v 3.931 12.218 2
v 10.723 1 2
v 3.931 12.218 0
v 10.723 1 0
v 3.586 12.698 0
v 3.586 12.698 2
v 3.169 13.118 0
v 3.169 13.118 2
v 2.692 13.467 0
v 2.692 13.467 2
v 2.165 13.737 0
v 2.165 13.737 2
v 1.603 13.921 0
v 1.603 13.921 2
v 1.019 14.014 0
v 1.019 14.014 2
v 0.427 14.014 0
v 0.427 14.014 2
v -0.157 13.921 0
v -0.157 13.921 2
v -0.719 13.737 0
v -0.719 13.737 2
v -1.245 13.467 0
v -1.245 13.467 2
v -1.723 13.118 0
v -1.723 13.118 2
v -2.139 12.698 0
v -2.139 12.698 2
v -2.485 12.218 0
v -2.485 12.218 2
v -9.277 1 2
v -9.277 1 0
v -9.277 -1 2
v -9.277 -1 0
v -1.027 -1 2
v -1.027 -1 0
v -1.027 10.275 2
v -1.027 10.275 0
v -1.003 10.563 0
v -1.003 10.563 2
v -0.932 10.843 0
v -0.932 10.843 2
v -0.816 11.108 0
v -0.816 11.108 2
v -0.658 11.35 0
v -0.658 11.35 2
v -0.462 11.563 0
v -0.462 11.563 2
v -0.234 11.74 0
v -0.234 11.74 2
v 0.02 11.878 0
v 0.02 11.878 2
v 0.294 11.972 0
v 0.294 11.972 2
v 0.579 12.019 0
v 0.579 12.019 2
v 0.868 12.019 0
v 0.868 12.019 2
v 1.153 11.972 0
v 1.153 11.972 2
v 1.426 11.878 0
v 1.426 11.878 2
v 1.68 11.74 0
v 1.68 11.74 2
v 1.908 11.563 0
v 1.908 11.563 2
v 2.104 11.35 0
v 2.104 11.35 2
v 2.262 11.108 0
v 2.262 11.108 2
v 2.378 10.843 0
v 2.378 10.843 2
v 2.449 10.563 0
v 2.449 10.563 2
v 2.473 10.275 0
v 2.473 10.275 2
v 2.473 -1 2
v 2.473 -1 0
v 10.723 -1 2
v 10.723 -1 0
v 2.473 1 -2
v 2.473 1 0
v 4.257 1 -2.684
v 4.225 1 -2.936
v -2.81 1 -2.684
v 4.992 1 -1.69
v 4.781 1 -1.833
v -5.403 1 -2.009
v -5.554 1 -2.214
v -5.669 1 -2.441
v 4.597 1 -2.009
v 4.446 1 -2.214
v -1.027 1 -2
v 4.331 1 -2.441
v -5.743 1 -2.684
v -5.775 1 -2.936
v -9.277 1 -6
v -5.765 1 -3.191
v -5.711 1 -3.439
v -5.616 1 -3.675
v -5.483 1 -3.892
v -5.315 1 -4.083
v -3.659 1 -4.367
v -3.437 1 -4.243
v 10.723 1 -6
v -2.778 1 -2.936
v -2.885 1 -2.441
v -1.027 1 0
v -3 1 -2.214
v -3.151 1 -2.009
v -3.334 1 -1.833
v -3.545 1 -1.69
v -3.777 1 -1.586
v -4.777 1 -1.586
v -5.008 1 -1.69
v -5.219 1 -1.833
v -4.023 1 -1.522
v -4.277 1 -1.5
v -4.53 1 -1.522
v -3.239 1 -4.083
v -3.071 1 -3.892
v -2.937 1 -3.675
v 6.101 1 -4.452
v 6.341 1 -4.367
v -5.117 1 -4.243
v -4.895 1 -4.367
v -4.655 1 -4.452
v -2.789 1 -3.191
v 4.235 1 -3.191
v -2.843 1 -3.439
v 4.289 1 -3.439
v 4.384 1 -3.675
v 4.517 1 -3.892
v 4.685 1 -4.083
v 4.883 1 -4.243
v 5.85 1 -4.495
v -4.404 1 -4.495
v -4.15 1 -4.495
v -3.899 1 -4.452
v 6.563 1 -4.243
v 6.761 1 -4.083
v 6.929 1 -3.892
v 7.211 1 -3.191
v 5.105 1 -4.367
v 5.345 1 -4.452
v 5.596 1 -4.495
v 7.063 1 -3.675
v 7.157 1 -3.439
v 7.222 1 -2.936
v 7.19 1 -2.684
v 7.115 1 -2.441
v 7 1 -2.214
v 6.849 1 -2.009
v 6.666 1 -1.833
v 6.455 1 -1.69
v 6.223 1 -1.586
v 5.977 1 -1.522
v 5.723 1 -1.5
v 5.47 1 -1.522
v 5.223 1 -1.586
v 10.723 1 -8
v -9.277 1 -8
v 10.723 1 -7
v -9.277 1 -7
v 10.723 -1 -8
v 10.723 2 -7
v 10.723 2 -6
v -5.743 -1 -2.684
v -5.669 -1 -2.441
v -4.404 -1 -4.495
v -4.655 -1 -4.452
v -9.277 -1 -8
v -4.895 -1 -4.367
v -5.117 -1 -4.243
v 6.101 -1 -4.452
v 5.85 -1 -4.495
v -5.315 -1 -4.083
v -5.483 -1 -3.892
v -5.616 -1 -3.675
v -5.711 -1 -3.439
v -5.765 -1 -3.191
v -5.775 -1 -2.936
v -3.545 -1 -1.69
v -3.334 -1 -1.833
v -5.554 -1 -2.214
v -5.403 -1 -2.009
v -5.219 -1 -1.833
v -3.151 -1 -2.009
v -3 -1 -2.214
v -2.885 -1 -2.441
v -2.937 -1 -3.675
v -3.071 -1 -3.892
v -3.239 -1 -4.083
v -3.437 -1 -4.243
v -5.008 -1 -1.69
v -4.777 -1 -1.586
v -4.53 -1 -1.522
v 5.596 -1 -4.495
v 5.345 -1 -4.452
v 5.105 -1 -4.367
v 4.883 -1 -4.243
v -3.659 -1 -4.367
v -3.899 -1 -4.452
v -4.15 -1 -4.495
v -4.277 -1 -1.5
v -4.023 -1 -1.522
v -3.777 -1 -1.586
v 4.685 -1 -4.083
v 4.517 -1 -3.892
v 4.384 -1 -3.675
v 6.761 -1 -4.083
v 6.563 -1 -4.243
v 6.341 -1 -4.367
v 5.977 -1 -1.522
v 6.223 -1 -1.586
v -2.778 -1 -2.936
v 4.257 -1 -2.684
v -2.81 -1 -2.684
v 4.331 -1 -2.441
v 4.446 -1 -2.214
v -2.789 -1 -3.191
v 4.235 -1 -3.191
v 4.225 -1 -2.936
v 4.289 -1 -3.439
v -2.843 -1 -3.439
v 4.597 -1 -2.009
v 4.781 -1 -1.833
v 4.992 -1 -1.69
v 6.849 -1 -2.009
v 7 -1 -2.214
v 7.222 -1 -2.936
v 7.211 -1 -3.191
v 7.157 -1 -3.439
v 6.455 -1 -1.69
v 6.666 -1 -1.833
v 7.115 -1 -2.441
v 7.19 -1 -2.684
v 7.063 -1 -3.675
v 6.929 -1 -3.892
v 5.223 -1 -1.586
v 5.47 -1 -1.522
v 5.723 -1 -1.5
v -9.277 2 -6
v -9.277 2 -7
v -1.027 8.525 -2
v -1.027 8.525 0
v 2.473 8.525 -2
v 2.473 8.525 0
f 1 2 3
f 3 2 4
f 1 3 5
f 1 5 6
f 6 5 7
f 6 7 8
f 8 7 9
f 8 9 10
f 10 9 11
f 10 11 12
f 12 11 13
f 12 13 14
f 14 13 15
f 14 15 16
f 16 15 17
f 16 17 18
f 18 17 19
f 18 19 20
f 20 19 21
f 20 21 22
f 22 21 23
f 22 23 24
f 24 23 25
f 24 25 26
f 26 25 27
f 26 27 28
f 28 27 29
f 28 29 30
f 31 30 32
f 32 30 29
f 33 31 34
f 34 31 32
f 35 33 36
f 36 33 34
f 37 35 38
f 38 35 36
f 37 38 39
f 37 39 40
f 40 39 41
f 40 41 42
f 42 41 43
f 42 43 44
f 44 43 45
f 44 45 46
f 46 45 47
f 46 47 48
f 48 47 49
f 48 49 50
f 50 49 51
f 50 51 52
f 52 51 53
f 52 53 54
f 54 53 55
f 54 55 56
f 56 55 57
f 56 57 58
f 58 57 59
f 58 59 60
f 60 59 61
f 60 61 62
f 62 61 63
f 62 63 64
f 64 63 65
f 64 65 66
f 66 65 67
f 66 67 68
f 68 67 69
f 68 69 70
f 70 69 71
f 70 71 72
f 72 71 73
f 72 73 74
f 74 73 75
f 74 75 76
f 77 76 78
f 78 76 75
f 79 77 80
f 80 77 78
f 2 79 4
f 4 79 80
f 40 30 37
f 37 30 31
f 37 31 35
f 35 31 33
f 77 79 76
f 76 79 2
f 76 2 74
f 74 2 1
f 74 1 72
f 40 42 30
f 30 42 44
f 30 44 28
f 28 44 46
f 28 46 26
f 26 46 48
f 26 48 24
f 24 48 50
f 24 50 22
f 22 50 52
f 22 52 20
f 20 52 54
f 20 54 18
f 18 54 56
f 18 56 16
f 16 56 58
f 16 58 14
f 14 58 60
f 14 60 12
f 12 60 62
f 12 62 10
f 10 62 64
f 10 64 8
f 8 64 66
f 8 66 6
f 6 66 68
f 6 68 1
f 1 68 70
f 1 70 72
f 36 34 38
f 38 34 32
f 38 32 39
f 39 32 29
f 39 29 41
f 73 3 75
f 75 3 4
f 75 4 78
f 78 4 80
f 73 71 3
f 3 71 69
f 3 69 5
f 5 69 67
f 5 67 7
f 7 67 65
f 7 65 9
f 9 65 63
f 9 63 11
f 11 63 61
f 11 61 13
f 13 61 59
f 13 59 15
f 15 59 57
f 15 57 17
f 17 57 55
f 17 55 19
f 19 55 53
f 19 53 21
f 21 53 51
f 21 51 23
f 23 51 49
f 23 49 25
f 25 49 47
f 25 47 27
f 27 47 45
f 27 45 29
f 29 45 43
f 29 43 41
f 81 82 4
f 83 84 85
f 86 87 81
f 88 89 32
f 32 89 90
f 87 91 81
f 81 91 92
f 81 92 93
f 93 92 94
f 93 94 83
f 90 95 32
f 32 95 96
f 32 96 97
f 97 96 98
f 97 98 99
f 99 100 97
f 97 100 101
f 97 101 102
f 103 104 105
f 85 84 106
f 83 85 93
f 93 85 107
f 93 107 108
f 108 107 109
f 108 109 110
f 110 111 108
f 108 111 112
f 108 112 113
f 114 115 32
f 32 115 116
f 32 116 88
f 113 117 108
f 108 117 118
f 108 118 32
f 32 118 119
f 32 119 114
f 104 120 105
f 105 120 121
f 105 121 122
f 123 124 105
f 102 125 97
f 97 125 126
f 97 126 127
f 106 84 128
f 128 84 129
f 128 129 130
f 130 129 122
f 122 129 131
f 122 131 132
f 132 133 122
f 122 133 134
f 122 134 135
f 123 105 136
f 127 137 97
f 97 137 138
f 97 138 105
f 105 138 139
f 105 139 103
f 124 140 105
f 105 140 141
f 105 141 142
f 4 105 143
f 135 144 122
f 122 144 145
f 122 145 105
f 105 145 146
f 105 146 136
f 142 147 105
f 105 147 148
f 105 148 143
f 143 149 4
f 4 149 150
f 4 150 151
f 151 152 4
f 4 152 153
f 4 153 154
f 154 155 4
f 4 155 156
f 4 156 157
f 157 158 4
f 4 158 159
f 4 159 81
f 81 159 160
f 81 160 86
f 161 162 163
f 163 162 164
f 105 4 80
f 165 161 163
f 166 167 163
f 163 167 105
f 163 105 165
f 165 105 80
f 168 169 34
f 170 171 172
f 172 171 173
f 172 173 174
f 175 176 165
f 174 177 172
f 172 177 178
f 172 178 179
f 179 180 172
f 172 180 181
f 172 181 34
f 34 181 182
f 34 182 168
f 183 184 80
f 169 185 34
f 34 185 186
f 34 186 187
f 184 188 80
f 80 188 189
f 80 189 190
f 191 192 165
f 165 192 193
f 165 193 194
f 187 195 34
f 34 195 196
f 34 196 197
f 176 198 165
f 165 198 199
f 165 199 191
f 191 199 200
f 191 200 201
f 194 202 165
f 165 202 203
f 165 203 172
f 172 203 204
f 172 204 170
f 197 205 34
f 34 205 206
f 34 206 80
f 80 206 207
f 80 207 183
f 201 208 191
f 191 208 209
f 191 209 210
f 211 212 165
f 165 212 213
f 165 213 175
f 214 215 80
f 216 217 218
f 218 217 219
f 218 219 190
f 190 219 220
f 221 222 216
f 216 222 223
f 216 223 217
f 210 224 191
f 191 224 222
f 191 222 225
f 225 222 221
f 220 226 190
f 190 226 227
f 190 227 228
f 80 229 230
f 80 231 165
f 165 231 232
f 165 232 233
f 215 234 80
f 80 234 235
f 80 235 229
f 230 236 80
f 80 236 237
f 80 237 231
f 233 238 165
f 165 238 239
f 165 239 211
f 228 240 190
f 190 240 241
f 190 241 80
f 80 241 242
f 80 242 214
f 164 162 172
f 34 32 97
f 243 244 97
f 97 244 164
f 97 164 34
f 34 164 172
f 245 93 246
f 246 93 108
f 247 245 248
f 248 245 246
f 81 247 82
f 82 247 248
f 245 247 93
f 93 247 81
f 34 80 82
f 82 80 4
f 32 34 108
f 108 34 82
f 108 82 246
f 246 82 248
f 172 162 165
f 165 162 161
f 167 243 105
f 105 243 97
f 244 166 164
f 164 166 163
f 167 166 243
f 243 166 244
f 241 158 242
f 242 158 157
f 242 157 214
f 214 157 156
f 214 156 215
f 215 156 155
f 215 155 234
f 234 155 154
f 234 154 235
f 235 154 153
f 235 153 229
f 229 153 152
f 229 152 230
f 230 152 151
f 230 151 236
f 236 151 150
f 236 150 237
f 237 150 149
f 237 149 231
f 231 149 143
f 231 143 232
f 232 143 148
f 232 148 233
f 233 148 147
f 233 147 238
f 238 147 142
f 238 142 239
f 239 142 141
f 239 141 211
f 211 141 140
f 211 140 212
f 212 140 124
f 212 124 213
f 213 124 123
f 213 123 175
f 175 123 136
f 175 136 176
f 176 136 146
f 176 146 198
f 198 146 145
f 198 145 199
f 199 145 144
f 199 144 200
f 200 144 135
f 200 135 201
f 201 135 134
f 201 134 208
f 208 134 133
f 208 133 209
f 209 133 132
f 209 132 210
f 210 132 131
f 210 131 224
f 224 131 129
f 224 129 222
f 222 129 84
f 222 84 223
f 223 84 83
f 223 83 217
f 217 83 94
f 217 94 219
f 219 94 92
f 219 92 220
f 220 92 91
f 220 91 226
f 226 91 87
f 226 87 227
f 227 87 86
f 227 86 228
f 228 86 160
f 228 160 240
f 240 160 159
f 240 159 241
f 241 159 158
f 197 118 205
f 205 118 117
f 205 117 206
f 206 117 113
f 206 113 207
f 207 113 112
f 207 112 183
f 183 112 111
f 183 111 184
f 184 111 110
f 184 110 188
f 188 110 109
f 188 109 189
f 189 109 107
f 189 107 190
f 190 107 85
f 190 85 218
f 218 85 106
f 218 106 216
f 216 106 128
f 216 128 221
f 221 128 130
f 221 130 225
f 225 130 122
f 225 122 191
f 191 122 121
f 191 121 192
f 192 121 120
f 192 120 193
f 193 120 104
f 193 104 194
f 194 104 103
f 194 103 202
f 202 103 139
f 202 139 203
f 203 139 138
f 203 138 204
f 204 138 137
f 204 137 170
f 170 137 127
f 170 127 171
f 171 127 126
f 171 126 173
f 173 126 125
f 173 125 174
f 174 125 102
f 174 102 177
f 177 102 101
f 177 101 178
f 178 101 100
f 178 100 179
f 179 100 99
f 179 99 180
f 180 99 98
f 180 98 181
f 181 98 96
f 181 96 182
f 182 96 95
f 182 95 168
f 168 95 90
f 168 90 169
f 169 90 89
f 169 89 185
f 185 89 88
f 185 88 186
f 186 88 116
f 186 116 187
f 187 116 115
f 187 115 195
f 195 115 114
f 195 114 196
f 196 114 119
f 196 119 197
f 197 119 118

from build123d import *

# Parameters (mm, degrees)
BOSS_EXTRUDE1_DEPTH = 2
BOSS_EXTRUDE4_DEPTH = 2
SKETCH4_W           = 20
SKETCH4_H           = 2
BOSS_EXTRUDE5_DEPTH = 6
SKETCH5_W           = 20
SKETCH5_H           = 1
BOSS_EXTRUDE6_DEPTH = 1
SKETCH6_R           = 1.5
CUT_EXTRUDE2_DEPTH  = 2


with BuildPart() as part:
    # Sketch1 → Boss-Extrude1 (new body)
    with BuildSketch(Plane.XY):
        with BuildLine():
            Line((10.723202921, -1), (10.723202921, 1))
            Line((10.723202921, 1), (3.93099581, 12.217572551))
            ThreePointArc((3.93099581, 12.217572551), (0.723202921, 14.025263413), (-2.484589967, 12.217572551))
            Line((-2.484589967, 12.217572551), (-9.276797079, 1))
            Line((-9.276797079, 1), (-9.276797079, -1))
            Line((-9.276797079, -1), (-1.026797079, -1))
            Line((-1.026797079, -1), (-1.026797079, 10.275263413))
            ThreePointArc((-1.026797079, 10.275263413), (0.723202921, 12.025263413), (2.473202921, 10.275263413))
            Line((2.473202921, 10.275263413), (2.473202921, -1))
            Line((2.473202921, -1), (10.723202921, -1))
        make_face()
    extrude(amount=BOSS_EXTRUDE1_DEPTH)


with BuildPart() as body_2:
    # Sketch2 → Boss-Extrude4 (new body)
    with BuildSketch(Plane(origin=(0, 0, 0), x_dir=(-1, 0, 0), z_dir=(0, 0, -1))):
        Polygon((-10.723202921, -1), (9.276797079, -1), (9.276797079, 1), (1.026797079, 1), (1.026797079, 8.525), (-2.473202921, 8.525), (-2.473202921, 1), (-10.723202921, 1), align=None)
    extrude(amount=BOSS_EXTRUDE4_DEPTH)

    # Sketch4 → Boss-Extrude5 (add)
    with BuildSketch(Plane(origin=(0, 0, -2), x_dir=(-1, 0, 0), z_dir=(0, 0, -1))):
        with Locations((-0.723202921, 0)):
            Rectangle(SKETCH4_W, SKETCH4_H)
    extrude(amount=BOSS_EXTRUDE5_DEPTH)

    # Sketch5 → Boss-Extrude6 (add)
    with BuildSketch(Plane(origin=(0, 1, 0), x_dir=(1, 0, 0), z_dir=(0, 1, 0))):
        with Locations((0.723202921, 6.5)):
            Rectangle(SKETCH5_W, SKETCH5_H)
    extrude(amount=BOSS_EXTRUDE6_DEPTH)

    # Sketch6 → Cut-Extrude2 (cut)
    with BuildSketch(Plane(origin=(0, 1, 0), x_dir=(1, 0, 0), z_dir=(0, 1, 0))):
        with Locations(Location((5.723202921, 3, 0), (0, 0, 270))):
            Circle(SKETCH6_R)
        with Locations(Location((-4.276797079, 3, 0), (0, 0, 270))):
            Circle(SKETCH6_R)
    extrude(amount=-CUT_EXTRUDE2_DEPTH, mode=Mode.SUBTRACT)


solid = Compound([part.part, body_2.part])
